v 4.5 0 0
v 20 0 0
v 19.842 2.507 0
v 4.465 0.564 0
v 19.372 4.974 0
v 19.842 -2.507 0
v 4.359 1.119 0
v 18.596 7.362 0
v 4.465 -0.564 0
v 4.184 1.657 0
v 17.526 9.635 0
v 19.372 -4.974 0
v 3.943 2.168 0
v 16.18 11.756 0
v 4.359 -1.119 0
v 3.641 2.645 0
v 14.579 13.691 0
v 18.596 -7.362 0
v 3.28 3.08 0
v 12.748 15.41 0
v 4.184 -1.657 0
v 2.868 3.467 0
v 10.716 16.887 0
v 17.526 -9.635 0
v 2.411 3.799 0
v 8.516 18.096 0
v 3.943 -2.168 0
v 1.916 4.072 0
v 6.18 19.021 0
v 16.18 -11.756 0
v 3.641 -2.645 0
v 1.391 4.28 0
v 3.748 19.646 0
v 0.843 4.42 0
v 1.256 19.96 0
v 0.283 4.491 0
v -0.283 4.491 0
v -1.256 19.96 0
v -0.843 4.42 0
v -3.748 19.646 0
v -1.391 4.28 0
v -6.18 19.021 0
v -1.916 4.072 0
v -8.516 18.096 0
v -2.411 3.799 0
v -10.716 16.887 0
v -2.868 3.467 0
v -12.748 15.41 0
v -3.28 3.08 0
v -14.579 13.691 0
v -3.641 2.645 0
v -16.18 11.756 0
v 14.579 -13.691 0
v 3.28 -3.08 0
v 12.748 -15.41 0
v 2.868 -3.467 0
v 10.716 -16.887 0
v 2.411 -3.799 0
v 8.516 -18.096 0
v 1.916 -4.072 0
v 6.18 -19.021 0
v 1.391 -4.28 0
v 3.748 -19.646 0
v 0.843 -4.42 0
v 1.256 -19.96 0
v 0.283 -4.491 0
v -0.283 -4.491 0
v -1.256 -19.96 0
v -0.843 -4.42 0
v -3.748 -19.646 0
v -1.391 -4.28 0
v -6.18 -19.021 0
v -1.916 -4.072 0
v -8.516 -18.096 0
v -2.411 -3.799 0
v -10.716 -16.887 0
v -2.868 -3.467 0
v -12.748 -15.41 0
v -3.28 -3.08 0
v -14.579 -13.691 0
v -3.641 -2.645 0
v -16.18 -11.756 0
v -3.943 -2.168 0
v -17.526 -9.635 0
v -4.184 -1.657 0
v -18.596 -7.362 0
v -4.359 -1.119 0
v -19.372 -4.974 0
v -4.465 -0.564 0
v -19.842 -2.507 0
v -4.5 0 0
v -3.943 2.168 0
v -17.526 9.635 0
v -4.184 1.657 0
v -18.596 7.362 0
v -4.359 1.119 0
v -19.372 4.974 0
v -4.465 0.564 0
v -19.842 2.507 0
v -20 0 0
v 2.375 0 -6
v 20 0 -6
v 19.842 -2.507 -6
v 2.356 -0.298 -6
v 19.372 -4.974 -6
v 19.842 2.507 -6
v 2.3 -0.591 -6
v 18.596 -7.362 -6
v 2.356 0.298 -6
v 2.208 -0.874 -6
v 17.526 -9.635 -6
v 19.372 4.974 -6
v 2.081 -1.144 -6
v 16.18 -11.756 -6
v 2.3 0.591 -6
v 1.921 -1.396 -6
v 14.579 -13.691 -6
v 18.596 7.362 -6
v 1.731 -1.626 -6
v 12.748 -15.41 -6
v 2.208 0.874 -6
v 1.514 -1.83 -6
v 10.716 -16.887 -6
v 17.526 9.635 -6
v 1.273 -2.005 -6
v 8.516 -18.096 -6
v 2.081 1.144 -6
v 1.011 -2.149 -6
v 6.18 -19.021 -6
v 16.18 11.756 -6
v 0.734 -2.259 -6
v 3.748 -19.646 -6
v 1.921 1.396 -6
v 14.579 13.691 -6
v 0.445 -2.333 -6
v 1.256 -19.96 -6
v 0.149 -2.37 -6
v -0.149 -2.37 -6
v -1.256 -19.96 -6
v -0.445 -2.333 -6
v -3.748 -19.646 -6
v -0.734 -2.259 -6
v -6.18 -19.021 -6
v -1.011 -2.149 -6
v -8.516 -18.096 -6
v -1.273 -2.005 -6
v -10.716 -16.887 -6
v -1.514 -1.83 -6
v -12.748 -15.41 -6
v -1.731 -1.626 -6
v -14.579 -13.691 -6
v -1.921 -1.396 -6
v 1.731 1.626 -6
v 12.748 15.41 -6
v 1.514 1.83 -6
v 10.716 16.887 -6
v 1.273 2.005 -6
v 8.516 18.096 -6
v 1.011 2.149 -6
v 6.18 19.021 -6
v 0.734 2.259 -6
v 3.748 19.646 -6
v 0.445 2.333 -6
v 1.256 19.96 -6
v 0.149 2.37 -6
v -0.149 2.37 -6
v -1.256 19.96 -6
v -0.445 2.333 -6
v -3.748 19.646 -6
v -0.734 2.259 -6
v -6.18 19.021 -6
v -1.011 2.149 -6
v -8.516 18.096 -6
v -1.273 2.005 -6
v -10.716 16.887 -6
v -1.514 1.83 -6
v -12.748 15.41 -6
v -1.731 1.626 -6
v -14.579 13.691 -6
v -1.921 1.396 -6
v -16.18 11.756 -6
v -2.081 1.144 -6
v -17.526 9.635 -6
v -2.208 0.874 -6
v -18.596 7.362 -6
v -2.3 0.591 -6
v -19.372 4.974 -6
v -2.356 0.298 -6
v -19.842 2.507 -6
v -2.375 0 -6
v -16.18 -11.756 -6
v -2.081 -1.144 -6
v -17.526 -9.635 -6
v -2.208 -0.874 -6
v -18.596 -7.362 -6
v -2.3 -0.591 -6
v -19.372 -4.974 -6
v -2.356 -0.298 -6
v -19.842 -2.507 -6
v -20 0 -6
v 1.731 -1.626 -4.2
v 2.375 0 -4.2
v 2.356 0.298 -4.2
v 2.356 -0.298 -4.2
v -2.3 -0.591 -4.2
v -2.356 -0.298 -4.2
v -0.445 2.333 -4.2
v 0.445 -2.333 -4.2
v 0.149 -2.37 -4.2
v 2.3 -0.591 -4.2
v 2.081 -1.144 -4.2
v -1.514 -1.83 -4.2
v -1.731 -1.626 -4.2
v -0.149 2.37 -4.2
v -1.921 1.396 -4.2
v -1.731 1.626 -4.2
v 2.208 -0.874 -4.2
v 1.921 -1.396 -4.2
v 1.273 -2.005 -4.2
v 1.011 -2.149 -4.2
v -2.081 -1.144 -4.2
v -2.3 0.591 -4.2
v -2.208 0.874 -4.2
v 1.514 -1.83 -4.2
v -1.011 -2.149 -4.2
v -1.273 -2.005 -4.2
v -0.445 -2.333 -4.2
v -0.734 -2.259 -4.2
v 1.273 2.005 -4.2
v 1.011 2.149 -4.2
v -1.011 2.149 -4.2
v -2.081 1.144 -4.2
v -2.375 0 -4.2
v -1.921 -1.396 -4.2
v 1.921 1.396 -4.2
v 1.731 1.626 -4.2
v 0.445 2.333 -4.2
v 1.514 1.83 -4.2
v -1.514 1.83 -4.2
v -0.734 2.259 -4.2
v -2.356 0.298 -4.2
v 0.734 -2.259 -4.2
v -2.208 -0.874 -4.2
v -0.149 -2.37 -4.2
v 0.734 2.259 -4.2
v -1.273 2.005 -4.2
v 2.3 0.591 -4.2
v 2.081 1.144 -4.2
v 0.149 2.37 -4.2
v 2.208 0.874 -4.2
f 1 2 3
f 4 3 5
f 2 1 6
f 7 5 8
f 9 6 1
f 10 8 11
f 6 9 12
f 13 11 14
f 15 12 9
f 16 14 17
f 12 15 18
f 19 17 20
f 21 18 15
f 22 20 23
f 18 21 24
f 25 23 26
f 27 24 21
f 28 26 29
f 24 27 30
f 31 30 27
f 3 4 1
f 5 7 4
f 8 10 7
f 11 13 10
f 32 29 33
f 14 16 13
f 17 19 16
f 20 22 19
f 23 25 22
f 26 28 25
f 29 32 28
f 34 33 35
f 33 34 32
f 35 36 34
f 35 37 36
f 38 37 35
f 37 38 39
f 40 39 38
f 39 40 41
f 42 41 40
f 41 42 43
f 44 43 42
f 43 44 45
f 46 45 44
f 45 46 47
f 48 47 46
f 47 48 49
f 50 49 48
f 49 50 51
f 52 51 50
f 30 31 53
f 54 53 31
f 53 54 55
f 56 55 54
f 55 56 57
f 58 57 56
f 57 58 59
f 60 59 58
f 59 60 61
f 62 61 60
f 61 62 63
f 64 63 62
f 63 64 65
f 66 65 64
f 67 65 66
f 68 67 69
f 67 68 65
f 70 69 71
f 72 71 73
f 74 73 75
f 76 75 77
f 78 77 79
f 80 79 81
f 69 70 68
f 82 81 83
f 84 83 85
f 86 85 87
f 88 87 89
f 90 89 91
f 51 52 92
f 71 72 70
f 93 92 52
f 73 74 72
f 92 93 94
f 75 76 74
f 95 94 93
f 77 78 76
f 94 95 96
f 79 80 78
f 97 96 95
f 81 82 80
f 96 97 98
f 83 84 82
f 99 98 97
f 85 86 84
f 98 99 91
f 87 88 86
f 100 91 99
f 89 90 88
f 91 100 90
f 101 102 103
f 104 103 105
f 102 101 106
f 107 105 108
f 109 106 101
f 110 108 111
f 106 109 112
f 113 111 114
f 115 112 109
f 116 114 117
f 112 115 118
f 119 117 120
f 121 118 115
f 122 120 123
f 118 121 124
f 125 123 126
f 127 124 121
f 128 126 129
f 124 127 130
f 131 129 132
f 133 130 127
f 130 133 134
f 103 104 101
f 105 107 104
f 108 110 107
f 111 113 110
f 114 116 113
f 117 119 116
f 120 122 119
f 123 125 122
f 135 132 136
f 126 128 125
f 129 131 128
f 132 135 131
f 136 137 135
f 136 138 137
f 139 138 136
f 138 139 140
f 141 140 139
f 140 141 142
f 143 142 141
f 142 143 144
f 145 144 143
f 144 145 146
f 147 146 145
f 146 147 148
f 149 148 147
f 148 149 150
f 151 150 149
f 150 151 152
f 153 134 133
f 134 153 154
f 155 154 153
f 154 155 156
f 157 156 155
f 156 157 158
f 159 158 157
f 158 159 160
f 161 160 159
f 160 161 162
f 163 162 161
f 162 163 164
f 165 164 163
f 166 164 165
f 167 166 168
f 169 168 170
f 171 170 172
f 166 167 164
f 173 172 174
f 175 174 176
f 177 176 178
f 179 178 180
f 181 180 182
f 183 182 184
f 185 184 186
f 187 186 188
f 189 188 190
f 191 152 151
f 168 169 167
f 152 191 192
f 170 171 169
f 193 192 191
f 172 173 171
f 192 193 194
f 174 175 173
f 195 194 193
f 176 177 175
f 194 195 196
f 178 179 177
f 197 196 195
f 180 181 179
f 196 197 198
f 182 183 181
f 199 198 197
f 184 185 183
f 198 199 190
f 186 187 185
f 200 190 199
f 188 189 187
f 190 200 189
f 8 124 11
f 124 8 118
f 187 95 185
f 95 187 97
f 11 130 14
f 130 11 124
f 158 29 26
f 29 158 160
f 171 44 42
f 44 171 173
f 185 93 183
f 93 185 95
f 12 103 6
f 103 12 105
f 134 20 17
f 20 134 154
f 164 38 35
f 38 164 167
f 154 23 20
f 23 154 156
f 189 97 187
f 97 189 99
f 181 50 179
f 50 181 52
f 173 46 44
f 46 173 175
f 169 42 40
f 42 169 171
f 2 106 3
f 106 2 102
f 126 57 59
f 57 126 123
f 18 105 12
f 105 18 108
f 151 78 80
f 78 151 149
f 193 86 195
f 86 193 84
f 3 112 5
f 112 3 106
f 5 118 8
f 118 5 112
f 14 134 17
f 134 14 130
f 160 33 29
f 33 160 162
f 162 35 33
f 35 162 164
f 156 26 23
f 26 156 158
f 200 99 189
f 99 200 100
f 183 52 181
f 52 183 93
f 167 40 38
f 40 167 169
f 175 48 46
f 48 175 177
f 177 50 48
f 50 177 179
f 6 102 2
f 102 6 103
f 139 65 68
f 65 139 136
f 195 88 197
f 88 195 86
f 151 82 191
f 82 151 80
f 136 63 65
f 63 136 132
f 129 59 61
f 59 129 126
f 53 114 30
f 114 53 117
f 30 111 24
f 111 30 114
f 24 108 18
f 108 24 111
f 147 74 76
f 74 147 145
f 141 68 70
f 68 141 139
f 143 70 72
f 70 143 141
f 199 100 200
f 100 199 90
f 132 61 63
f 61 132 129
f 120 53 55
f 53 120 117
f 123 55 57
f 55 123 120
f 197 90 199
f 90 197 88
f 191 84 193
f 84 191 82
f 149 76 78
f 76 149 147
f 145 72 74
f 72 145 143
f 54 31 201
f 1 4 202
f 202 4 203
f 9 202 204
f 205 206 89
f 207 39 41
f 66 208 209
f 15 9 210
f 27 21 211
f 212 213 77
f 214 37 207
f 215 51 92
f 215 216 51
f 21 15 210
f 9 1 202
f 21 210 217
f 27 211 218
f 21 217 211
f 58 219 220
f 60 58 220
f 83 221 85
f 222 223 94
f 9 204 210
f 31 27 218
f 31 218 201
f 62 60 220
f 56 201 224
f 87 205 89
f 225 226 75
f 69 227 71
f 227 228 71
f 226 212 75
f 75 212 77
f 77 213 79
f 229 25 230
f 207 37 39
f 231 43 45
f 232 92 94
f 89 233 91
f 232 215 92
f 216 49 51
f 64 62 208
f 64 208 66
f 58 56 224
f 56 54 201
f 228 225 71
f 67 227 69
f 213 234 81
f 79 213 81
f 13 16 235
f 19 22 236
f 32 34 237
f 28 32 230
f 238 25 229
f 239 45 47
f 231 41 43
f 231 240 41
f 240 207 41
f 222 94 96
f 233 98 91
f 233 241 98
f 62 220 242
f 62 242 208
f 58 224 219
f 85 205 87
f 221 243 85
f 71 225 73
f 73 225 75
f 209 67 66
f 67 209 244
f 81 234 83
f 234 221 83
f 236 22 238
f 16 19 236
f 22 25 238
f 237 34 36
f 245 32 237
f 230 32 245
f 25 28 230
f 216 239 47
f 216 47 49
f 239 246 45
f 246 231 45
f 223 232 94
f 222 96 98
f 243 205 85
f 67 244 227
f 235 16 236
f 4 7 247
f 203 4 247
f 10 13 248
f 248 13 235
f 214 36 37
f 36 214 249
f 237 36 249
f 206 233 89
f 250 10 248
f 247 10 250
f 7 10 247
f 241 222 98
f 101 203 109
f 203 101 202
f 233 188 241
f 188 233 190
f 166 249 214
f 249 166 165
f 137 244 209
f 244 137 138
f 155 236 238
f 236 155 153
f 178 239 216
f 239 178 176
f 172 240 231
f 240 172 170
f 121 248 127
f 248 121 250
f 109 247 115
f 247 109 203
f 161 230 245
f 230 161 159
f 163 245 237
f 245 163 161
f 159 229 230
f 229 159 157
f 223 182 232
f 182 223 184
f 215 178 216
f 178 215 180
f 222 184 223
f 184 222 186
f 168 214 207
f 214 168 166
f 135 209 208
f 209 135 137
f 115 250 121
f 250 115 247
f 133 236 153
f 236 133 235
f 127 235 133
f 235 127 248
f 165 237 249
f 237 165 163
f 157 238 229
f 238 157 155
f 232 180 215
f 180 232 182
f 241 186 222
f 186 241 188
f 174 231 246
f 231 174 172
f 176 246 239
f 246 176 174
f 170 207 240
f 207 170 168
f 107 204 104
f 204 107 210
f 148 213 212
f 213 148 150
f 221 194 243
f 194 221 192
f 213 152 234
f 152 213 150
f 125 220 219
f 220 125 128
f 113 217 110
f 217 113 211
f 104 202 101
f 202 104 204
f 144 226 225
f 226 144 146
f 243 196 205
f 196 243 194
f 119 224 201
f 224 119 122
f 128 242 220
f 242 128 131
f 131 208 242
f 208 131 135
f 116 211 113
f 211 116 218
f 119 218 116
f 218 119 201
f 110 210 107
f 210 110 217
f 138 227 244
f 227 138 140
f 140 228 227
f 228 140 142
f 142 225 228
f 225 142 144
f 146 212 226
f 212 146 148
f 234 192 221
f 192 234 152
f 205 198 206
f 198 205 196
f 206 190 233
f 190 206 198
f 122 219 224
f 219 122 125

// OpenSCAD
$fn = 50;


difference() {
	union() {
		translate(v = [0, 0, -6.0000000000]) {
			cylinder(h = 6, r = 10.0000000000);
		}
		translate(v = [0, 0, -6.0000000000]) {
			cylinder(h = 6, r = 20.0000000000);
		}
	}
	union() {
		translate(v = [0, 0, 0]) {
			rotate(a = [0, 0, 0]) {
				difference() {
					union() {
						#translate(v = [0, 0, -6.0000000000]) {
							cylinder(h = 6, r = 2.2500000000);
						}
						#translate(v = [0, 0, -4.2000000000]) {
							cylinder(h = 4.2000000000, r = 10.0000000000, r1 = 2.3750000000, r2 = 4.5000000000);
						}
						#translate(v = [0, 0, -6.0000000000]) {
							cylinder(h = 6, r = 2.3750000000);
						}
						#translate(v = [0, 0, -6.0000000000]) {
							cylinder(h = 6, r = 2.2500000000);
						}
					}
					union();
				}
			}
		}
	}
}
